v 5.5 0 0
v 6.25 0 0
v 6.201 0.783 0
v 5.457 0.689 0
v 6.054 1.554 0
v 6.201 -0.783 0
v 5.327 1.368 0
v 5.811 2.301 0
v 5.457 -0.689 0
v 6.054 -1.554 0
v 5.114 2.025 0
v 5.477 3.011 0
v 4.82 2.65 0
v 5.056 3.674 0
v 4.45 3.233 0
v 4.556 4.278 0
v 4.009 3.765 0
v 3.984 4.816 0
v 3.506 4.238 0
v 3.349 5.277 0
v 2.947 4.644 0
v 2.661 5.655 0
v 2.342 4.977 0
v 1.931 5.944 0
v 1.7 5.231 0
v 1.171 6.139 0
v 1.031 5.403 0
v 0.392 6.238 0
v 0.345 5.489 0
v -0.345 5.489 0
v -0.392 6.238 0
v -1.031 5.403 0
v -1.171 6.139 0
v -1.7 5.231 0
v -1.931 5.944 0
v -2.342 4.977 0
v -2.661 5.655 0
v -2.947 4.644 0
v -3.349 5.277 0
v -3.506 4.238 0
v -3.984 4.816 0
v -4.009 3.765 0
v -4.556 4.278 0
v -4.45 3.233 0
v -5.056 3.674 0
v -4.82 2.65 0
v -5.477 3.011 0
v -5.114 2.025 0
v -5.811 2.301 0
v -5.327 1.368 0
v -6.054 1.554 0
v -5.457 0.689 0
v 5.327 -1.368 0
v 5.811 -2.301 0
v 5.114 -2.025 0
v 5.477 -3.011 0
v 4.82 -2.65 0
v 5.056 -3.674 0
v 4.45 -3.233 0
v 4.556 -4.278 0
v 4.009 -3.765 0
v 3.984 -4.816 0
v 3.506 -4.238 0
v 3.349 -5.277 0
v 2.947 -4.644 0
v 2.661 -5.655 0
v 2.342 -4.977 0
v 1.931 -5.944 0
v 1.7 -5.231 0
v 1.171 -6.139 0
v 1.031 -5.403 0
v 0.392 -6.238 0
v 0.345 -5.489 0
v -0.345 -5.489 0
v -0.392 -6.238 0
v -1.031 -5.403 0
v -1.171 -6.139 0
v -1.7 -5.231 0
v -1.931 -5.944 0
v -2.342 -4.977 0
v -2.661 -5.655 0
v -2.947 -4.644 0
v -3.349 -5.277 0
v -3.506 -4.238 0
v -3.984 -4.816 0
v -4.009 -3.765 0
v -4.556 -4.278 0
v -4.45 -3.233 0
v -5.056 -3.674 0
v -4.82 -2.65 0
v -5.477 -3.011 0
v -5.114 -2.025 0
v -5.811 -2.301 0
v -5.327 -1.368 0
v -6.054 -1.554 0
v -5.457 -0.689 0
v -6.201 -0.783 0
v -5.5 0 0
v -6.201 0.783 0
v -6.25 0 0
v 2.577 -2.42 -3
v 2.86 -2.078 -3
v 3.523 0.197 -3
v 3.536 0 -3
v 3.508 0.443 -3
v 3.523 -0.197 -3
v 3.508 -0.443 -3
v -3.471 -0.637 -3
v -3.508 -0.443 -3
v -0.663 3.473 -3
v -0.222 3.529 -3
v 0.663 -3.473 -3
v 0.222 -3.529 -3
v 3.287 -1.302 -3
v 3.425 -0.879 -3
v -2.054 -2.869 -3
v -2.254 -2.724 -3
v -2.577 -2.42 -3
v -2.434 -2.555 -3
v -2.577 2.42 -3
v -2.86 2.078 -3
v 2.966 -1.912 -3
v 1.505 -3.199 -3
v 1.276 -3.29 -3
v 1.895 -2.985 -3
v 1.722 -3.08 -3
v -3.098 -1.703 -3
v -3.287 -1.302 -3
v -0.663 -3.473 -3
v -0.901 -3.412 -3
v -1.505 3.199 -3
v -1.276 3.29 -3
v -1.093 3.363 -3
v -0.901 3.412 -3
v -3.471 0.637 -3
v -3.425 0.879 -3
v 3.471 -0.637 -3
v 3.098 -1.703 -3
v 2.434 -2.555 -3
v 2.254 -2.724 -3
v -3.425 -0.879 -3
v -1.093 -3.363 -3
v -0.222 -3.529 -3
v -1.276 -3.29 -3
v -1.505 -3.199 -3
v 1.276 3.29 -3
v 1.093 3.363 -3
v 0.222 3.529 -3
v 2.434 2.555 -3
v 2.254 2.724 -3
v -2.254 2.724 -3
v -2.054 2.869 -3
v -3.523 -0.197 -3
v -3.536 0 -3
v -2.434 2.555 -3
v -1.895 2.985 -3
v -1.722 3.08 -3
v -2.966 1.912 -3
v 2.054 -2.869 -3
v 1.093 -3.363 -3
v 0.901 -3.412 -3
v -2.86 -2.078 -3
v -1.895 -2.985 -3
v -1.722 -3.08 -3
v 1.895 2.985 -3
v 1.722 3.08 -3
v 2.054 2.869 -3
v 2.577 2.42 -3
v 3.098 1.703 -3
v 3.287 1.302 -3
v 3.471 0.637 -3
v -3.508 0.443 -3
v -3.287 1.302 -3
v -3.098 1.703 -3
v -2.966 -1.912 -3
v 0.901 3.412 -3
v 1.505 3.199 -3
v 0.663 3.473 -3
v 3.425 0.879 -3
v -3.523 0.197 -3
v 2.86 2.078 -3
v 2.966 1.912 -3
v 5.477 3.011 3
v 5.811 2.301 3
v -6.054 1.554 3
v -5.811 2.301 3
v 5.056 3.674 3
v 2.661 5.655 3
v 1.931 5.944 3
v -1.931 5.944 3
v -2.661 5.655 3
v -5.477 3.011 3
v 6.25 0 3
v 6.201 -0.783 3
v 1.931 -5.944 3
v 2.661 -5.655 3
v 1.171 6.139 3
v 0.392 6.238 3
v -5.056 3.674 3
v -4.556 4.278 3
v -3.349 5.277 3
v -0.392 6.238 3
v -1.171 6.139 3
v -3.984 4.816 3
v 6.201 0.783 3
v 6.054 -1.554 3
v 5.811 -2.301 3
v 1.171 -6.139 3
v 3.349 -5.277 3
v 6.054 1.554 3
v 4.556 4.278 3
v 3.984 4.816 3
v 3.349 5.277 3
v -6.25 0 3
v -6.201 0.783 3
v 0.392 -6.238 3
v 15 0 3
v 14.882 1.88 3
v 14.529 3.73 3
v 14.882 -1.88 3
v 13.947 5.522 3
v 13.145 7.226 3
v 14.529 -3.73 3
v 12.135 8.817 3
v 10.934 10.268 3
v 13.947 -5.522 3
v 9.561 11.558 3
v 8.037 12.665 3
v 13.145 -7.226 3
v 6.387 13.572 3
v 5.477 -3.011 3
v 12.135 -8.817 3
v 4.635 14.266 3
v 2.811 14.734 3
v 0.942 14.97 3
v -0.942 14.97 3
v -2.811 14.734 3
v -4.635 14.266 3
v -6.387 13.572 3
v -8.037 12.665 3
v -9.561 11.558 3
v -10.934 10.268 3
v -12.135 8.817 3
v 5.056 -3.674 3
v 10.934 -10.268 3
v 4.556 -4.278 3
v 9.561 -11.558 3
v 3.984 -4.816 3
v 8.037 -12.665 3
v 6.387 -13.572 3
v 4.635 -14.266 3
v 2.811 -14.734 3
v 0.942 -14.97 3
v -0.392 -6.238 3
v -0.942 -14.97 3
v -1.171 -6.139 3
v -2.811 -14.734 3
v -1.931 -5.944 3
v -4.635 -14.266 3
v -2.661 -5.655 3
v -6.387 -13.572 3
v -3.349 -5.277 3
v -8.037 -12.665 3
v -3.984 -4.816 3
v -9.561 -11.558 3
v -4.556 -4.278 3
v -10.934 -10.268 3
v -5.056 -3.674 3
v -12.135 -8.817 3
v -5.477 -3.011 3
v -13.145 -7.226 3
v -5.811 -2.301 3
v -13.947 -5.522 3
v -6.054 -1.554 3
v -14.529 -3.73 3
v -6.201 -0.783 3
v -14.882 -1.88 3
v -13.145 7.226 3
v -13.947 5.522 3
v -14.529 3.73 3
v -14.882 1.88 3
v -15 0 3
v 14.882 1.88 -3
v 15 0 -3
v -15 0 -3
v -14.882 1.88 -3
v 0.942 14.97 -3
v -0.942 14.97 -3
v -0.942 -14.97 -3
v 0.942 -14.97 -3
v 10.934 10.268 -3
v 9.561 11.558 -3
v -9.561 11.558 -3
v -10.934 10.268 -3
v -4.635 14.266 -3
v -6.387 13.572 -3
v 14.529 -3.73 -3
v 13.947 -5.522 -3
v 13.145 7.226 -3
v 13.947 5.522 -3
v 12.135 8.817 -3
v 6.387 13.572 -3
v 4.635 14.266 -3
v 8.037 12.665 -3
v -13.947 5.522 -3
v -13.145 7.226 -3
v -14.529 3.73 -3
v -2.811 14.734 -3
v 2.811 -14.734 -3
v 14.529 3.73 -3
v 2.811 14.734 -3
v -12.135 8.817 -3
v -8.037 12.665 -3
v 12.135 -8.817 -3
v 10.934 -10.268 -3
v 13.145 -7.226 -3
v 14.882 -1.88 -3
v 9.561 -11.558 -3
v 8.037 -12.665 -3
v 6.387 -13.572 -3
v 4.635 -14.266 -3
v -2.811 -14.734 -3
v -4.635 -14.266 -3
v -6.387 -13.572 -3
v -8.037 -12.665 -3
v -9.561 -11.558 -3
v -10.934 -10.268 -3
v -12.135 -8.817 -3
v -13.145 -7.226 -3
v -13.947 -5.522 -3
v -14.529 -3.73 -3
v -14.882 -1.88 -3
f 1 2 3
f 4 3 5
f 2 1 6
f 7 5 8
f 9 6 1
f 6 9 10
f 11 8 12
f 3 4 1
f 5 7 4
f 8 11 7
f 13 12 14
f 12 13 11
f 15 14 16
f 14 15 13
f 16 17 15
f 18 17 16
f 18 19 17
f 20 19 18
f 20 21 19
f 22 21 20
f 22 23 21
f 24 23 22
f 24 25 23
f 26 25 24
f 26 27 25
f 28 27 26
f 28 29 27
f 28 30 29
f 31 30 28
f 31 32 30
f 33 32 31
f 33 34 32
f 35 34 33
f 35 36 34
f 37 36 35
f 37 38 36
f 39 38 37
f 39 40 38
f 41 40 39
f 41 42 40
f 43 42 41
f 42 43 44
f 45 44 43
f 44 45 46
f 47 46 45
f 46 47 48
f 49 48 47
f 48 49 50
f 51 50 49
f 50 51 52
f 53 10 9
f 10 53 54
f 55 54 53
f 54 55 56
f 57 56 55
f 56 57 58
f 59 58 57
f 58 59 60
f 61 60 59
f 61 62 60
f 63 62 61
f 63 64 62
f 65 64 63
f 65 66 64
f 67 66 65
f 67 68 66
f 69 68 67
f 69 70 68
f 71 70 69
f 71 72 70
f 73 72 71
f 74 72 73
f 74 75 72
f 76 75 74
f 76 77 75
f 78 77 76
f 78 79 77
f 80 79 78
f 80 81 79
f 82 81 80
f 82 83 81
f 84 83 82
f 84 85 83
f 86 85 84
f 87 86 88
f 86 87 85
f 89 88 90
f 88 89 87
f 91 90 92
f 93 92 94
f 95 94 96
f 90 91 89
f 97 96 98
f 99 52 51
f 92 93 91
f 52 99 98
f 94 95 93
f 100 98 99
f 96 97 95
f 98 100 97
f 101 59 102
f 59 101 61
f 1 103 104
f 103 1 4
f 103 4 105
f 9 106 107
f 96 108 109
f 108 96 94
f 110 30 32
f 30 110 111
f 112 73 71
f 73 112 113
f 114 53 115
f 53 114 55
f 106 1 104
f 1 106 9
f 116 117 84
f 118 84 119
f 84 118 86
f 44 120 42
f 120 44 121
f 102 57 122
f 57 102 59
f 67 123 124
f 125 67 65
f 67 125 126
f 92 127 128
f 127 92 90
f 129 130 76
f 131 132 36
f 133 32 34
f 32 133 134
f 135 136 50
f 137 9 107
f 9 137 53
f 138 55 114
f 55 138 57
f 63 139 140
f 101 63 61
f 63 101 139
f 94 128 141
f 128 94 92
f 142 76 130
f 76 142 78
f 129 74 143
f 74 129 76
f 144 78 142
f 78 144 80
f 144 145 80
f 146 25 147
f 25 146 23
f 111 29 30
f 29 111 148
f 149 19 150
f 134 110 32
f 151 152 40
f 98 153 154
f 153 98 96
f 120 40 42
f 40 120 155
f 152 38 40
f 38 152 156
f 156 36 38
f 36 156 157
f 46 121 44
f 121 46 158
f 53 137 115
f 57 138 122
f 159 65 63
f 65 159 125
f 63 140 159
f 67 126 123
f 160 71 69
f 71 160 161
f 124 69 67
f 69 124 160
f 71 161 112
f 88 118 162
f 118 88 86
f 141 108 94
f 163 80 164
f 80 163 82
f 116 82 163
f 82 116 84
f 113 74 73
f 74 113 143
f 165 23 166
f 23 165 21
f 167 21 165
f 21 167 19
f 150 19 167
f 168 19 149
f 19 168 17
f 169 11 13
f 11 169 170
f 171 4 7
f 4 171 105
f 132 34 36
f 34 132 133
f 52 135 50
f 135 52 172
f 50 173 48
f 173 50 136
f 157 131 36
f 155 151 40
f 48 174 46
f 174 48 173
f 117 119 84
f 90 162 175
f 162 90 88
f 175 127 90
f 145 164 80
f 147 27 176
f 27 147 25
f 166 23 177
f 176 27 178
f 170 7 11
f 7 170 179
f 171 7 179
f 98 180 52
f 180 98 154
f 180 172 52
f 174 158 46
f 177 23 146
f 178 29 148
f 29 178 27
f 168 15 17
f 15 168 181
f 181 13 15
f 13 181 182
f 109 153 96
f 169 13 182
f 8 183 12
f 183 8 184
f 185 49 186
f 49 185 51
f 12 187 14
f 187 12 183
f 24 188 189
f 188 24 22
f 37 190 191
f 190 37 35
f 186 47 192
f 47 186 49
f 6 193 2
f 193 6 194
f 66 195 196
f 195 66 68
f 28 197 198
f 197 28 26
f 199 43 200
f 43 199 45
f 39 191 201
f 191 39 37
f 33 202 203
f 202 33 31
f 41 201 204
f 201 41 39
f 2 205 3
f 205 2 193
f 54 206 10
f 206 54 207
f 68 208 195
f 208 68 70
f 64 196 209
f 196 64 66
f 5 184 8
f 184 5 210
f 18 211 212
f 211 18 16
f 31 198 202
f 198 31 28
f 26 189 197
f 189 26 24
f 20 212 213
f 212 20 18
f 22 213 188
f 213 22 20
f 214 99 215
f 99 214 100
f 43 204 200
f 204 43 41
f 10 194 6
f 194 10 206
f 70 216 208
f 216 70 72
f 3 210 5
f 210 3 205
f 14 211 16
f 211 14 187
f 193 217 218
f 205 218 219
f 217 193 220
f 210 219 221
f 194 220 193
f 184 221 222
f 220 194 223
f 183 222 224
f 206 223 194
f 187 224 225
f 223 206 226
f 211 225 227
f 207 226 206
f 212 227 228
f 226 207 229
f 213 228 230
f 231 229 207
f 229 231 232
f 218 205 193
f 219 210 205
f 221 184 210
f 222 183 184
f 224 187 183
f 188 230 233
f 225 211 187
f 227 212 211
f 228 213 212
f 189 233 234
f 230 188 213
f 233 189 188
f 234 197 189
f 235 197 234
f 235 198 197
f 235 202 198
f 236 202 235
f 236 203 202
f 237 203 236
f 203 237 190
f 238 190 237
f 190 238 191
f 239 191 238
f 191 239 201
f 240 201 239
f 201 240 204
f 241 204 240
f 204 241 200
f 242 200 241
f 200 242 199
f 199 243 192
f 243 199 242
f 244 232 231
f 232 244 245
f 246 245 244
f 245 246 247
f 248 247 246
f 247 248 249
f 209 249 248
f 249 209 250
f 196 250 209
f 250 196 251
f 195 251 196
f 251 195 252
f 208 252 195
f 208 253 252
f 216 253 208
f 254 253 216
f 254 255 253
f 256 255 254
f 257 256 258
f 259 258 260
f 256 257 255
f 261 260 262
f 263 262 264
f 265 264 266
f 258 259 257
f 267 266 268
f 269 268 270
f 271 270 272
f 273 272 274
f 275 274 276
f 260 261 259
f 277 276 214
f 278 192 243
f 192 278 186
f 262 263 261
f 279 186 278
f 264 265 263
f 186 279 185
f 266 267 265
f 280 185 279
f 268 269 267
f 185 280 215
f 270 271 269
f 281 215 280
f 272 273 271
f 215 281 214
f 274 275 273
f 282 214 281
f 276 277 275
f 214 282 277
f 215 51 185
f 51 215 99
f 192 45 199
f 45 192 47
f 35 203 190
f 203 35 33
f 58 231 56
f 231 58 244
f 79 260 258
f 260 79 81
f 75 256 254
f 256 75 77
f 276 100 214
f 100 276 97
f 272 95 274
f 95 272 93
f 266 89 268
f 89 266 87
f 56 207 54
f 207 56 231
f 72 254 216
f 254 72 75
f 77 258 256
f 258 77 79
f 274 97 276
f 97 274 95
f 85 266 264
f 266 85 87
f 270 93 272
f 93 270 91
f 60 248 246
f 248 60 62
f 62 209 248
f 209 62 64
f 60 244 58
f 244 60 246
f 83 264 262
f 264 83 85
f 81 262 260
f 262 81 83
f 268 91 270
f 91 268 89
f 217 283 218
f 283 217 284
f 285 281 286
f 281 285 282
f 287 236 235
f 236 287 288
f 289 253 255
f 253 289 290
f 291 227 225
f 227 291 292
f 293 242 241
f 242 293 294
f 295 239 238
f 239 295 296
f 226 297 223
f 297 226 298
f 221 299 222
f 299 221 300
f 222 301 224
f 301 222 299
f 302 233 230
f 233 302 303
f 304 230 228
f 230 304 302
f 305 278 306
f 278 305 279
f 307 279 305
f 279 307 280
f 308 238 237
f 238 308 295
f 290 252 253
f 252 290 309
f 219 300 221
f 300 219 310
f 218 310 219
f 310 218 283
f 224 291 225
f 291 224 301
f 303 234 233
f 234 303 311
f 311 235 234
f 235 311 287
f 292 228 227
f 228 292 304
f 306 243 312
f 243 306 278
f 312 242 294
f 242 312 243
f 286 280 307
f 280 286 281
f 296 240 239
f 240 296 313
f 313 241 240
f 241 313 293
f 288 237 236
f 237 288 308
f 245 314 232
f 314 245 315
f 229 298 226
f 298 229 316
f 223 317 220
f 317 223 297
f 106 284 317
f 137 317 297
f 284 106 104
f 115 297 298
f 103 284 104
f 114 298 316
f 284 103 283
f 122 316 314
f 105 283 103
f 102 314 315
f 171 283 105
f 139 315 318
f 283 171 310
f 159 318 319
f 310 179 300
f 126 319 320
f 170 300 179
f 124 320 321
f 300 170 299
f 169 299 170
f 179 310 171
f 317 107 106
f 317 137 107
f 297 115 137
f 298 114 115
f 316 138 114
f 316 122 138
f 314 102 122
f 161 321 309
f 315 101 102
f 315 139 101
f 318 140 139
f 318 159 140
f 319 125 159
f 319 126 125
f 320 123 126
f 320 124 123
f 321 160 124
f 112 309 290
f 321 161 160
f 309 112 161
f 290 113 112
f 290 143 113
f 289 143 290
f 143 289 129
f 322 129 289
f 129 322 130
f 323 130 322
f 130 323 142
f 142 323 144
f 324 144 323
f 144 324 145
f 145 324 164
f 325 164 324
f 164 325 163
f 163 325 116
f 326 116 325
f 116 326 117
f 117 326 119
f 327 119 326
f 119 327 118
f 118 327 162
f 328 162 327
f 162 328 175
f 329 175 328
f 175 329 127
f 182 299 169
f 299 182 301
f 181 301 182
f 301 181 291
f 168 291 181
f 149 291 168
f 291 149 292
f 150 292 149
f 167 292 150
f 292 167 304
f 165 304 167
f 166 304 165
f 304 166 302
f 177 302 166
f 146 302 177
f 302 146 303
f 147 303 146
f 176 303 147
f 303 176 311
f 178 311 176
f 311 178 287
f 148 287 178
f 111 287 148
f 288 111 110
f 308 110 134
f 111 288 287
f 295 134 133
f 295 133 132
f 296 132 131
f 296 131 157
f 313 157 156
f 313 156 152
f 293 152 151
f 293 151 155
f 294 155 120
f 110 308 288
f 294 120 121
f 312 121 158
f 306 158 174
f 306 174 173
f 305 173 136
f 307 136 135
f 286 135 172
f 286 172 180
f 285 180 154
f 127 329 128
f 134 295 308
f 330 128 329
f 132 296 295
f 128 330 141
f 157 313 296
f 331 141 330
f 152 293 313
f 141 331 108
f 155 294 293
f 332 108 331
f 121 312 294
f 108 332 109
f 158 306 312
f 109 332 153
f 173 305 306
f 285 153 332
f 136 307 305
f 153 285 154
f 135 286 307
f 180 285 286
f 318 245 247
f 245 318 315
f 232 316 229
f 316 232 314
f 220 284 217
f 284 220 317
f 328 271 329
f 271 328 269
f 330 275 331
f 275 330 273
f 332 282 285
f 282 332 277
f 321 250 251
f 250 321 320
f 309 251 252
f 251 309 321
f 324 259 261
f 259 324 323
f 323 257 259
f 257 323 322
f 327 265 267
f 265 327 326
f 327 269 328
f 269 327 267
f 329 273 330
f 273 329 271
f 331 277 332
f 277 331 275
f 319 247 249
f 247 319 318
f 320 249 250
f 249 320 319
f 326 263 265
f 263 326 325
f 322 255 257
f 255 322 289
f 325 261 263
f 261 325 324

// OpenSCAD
$fn = 50;

difference() {
	union() {
		translate(v = [0, 0, -3.0]) {
			cylinder(h = 6, r = 15.0);
		}
	}
	union() {
		translate(v = [0, 0, 0]) {
			rotate(a = [0, 0, 0]) {
				difference() {
					union() {
						translate(v = [0, 0, -6.0]) {
							cylinder(h = 6, r = 2.25);
						}
						translate(v = [0, 0, -4.2]) {
							cylinder(h = 4.2, r1 = 2.75, r2 = 5.5);
						}
						translate(v = [0, 0, -6.0]) {
							cylinder(h = 6, r = 2.75);
						}
						translate(v = [0, 0, -6.0]) {
							cylinder(h = 6, r = 2.25);
						}
					}
					union();
				}
			}
		}
		#cylinder(h = 3, r = 6.25);
	}
}
